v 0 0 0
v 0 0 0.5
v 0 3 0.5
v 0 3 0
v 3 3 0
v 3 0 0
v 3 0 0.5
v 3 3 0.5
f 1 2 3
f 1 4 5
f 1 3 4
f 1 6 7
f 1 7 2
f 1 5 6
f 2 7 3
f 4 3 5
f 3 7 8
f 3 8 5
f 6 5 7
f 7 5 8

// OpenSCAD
/* Warning, this is a very basic generator with a lot of approximation 
input data : [UDFN, RBX, 3x3x0.5mm, 10, , A, C04-00194A]
generated by com.zoubworld.electronics.cad.model3d.Basic
Date : Sun Feb 15 10:50:48 CET 2026
*/

//body
color("black")
translate([0,0,0])
cube([3.0,3.0,0.5], center=false);
